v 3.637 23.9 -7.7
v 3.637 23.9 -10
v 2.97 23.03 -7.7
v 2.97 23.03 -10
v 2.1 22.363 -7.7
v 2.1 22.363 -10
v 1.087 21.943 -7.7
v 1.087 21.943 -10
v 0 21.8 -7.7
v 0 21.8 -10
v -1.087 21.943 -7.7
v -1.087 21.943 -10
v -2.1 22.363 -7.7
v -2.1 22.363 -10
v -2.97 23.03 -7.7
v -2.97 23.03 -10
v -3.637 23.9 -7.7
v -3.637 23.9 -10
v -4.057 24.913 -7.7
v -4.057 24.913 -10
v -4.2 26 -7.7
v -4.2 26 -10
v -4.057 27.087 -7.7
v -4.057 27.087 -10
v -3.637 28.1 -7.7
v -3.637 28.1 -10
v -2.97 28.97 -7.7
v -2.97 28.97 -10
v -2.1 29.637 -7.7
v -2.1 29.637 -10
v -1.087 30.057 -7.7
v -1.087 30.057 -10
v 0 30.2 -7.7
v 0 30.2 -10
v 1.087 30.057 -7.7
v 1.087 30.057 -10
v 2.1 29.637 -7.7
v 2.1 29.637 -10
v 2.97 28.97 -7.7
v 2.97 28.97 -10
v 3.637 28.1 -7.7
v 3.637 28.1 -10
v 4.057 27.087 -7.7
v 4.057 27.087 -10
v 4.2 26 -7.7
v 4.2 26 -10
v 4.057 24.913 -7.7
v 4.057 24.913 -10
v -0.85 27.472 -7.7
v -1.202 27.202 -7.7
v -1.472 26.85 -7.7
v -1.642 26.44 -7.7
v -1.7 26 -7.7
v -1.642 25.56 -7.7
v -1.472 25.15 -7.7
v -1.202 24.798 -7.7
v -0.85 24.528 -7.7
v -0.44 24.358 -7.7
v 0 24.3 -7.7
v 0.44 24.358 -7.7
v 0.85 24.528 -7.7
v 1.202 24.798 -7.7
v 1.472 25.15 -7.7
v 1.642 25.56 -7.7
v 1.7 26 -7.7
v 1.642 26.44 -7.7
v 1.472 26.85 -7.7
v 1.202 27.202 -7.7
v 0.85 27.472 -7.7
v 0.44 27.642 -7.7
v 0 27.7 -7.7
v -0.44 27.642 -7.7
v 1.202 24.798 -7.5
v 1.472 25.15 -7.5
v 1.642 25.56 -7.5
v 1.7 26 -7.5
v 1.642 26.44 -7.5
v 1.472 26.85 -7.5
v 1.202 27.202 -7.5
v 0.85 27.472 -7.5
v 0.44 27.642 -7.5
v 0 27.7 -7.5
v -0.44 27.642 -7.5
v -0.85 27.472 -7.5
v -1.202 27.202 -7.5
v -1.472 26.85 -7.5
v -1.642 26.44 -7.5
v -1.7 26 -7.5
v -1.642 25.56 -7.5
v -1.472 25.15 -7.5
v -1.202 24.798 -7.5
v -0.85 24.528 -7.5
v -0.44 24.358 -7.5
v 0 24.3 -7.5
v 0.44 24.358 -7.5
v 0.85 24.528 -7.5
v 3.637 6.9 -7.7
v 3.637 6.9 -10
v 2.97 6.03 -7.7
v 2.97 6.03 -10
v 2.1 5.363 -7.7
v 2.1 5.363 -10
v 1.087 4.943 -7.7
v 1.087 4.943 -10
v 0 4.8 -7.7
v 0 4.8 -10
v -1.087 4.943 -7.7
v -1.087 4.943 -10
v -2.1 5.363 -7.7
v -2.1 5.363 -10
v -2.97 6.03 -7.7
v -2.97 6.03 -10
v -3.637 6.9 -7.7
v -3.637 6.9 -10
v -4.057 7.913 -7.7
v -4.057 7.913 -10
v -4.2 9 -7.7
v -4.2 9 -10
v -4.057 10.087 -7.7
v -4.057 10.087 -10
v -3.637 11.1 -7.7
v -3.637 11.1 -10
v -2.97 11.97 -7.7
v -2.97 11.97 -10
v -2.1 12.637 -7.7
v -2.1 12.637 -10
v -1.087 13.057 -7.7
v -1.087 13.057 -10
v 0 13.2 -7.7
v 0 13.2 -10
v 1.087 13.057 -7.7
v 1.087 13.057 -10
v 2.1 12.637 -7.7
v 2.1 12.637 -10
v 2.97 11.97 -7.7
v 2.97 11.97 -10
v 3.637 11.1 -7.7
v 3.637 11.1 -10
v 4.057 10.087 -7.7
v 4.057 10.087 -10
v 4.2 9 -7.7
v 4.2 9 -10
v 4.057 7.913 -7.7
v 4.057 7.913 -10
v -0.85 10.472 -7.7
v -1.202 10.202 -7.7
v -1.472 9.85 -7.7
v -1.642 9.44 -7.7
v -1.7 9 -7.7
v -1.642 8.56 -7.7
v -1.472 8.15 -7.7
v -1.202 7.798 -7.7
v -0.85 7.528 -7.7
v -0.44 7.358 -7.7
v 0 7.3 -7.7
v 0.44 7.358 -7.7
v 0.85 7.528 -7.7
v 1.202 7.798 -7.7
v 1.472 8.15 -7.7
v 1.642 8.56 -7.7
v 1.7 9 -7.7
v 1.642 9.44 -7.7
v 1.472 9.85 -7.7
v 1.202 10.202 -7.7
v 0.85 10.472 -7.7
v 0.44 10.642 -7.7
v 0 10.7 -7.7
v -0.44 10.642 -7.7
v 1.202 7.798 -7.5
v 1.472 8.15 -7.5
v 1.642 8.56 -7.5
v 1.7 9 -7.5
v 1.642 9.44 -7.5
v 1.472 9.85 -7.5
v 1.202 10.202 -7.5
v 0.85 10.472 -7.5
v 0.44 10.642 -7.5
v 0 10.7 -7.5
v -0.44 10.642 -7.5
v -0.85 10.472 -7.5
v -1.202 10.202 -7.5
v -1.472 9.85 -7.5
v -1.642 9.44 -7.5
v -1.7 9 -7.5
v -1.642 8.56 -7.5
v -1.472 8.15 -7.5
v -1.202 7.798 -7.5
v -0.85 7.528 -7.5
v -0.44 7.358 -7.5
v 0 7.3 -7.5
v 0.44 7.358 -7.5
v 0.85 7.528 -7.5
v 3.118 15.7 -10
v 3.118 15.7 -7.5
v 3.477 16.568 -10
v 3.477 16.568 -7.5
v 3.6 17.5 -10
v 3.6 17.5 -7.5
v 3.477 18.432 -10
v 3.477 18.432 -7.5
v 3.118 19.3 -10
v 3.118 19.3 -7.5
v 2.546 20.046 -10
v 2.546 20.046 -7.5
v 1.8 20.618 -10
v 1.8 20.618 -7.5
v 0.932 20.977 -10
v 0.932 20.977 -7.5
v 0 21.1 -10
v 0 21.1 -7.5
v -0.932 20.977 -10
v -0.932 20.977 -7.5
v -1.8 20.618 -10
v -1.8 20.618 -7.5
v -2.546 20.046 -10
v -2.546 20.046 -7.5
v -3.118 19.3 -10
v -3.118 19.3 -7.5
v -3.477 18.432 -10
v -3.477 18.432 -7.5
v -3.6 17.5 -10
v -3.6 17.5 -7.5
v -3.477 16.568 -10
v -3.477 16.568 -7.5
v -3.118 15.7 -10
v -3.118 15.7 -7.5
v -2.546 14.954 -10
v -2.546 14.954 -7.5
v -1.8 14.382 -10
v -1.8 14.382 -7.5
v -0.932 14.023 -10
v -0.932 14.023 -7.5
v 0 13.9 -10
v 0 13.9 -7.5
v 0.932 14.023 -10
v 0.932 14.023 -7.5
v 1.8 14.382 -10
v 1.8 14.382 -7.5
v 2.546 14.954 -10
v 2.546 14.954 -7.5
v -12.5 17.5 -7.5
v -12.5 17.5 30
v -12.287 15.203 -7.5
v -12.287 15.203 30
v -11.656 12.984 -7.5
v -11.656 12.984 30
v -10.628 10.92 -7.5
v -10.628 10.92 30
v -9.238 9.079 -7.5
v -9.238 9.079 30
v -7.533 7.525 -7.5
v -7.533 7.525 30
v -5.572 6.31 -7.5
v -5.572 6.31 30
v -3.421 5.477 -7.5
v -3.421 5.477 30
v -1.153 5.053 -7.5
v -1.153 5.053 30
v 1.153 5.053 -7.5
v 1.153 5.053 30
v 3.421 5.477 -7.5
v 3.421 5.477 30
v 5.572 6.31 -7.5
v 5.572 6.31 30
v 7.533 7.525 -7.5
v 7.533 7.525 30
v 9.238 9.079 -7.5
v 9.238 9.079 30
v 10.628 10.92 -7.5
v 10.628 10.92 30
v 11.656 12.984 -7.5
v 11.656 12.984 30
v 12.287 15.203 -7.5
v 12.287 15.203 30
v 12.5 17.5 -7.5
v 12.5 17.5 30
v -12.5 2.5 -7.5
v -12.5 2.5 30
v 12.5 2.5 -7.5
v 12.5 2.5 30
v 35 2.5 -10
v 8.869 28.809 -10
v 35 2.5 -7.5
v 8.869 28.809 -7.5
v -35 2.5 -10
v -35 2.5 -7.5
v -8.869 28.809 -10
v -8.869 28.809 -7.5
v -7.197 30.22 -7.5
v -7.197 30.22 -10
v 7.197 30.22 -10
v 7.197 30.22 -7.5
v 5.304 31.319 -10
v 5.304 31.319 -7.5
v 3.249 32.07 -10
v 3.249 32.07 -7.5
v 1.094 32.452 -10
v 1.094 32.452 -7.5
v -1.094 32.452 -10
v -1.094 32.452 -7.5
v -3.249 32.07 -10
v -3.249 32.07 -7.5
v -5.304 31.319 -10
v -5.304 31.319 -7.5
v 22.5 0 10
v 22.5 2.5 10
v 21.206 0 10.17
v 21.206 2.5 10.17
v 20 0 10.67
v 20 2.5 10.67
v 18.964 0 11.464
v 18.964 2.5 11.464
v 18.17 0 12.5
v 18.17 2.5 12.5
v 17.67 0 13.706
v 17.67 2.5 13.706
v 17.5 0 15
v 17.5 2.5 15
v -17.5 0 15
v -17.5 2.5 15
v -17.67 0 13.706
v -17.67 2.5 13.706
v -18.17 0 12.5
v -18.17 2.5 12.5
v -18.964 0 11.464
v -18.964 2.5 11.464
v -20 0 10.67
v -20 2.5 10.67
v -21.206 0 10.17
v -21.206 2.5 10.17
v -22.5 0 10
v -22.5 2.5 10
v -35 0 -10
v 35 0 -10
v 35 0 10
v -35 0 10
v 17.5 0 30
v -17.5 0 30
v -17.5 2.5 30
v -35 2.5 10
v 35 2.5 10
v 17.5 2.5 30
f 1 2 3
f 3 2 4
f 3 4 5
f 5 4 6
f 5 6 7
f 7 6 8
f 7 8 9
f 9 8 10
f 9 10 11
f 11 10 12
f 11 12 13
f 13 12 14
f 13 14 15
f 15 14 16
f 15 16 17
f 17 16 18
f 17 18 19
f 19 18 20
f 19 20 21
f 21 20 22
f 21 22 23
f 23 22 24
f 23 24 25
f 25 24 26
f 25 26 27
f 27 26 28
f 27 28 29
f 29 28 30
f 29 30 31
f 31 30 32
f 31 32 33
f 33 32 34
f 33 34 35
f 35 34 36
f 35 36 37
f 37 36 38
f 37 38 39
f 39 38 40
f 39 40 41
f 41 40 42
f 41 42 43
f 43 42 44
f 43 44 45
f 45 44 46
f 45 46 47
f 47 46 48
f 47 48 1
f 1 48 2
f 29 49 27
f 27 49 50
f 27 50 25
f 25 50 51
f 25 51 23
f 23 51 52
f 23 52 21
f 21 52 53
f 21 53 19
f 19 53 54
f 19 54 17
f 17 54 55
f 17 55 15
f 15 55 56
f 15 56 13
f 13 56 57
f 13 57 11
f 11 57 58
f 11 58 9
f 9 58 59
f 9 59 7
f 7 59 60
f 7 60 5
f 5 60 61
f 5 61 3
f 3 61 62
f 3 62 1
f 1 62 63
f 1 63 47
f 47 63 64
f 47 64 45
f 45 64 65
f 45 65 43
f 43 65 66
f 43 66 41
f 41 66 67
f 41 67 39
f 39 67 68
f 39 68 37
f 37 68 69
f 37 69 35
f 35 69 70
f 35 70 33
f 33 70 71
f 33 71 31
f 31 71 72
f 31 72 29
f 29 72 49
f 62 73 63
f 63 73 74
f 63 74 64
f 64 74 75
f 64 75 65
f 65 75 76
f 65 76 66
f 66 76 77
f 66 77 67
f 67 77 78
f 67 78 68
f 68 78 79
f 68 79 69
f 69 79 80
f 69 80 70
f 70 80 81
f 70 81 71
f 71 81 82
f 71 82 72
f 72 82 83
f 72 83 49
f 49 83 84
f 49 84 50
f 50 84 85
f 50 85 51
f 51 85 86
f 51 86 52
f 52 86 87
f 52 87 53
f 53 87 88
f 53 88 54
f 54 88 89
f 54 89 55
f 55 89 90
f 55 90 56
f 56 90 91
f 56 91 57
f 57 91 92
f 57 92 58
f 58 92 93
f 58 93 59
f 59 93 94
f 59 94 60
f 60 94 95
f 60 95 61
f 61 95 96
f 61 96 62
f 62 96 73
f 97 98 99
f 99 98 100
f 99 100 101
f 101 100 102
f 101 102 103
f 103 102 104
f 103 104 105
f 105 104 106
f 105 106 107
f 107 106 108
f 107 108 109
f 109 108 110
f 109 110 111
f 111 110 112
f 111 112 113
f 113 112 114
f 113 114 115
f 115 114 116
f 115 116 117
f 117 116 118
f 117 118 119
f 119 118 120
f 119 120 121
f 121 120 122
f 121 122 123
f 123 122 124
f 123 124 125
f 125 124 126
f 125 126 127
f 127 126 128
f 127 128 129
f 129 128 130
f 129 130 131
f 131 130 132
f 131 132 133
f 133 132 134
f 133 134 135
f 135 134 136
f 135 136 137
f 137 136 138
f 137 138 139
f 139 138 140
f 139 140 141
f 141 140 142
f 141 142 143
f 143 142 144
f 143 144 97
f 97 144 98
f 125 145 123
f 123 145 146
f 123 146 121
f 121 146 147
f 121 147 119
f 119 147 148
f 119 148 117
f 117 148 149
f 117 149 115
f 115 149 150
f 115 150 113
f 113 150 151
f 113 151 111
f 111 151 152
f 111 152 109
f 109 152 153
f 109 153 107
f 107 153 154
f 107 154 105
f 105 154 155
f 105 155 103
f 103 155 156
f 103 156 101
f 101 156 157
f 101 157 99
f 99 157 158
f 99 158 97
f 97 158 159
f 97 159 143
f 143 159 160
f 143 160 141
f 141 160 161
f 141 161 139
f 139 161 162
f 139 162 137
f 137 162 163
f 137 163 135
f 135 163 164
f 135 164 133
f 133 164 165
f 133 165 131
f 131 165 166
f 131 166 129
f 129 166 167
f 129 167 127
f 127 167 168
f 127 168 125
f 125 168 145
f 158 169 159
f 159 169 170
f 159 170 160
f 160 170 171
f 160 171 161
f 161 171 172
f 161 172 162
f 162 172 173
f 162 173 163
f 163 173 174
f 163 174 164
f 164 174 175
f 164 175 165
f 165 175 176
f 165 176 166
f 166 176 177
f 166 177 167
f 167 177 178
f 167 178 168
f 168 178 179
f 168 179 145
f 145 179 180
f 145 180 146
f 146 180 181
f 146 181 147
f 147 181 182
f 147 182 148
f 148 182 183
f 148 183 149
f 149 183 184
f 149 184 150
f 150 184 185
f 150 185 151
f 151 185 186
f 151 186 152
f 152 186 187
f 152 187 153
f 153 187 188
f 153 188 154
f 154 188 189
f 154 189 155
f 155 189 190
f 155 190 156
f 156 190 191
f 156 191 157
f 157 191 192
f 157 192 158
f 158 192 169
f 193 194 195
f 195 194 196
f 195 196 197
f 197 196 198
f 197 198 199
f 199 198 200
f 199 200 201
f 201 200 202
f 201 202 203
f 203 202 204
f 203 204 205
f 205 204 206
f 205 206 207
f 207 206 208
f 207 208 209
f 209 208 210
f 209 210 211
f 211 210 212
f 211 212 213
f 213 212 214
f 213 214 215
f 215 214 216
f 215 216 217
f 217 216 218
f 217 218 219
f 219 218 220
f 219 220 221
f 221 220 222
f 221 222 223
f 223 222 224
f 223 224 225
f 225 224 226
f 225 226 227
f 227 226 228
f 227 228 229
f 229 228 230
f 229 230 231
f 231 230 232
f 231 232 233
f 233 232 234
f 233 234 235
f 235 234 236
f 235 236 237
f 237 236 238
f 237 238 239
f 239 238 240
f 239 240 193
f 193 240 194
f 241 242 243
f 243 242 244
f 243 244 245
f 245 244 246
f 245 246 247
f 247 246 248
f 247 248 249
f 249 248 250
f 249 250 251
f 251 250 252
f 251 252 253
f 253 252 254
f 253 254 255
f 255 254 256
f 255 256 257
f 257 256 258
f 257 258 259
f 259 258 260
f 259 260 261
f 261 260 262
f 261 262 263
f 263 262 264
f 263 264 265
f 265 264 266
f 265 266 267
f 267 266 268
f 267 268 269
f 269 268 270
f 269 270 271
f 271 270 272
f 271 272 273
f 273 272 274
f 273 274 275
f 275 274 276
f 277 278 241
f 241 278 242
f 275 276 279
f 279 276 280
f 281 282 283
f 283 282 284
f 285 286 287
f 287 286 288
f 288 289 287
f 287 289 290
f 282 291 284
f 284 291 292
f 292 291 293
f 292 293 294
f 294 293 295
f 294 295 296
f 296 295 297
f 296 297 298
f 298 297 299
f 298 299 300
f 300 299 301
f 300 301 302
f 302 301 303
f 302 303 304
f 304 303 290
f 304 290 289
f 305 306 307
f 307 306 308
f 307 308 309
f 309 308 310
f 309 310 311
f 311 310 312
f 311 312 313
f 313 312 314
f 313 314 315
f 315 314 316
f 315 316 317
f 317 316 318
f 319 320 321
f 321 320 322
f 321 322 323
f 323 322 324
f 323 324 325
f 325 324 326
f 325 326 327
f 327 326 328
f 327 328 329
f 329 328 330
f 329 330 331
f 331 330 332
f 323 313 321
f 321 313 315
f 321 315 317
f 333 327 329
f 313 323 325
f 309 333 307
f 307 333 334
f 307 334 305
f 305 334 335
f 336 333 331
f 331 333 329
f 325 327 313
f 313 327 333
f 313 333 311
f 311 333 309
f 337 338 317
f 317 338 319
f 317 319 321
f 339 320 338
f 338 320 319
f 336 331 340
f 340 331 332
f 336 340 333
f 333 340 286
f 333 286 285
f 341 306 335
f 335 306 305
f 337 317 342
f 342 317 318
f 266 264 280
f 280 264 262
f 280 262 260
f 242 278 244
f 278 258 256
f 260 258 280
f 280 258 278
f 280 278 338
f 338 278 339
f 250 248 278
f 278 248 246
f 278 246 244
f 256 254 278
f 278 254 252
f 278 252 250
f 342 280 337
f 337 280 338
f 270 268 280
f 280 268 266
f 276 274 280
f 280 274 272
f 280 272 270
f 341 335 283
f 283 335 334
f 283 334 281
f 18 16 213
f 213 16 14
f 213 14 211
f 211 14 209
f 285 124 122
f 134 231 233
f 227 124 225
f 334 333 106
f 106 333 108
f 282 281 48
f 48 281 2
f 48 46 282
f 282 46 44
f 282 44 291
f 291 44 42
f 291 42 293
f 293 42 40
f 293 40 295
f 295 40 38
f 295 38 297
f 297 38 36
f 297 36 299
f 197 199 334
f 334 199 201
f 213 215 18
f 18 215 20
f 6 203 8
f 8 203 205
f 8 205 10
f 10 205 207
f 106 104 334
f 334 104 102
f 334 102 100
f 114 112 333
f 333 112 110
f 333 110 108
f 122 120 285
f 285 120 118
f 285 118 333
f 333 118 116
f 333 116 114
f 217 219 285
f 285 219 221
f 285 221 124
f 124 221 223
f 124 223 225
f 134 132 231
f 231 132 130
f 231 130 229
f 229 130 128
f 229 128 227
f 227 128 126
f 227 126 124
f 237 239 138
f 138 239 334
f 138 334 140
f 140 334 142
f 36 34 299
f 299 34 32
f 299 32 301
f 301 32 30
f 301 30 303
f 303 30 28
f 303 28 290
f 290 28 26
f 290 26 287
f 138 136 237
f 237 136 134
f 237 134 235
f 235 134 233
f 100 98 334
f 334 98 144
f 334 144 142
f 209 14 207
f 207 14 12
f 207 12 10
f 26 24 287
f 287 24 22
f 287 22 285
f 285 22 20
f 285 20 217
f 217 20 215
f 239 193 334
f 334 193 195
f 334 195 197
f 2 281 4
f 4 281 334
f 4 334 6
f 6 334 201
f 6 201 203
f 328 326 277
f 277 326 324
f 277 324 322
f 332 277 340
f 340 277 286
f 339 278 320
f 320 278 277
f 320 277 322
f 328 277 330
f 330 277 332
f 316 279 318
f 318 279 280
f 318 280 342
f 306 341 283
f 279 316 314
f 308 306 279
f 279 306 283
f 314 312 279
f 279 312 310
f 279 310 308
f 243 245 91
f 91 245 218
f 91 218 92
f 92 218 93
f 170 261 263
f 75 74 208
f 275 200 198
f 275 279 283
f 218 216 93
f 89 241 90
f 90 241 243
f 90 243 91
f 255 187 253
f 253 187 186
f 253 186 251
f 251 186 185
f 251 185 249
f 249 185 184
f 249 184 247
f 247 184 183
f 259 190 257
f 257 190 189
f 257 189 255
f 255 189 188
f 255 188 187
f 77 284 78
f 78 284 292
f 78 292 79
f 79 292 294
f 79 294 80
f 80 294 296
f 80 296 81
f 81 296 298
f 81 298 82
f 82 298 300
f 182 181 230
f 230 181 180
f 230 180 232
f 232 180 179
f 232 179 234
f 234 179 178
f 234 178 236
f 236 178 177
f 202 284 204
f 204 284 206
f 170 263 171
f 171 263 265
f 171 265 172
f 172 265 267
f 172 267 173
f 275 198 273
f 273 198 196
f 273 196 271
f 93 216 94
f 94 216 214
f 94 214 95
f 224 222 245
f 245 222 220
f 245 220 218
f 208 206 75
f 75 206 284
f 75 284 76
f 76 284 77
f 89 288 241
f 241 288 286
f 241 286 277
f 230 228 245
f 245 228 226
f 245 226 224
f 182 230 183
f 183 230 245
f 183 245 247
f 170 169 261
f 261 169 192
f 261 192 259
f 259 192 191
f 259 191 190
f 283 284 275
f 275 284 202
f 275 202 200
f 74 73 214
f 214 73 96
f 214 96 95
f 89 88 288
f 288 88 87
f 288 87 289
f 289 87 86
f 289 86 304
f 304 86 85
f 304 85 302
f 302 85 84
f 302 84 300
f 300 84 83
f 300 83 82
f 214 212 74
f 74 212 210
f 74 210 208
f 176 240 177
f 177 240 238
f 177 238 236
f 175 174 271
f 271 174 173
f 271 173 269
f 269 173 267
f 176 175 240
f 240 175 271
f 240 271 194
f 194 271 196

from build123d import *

# Parameters (mm, degrees)
BOSS_EXTRUDE1_DEPTH                              = 2.5
FILLET1_R                                        = 5
SKETCH3_W                                        = 70
SKETCH3_H                                        = 2.5
BOSS_EXTRUDE2_DEPTH                              = 30
CUT_EXTRUDE1_REACH                               = 62.725
BOSS_EXTRUDE3_DEPTH                              = 37.5
CUT_EXTRUDE3_REACH                               = 62.725
SKETCH10_R                                       = 3.6
CBORE_FOR_M3_HEX_HEAD_MACHINE_SCREW1_D           = 3.4
CBORE_FOR_M3_HEX_HEAD_MACHINE_SCREW1_CBORE_D     = 8.4
CBORE_FOR_M3_HEX_HEAD_MACHINE_SCREW1_CBORE_DEPTH = 2.3


with BuildPart() as part:
    # Sketch2 → Boss-Extrude1 (new body)
    with BuildSketch(Plane(origin=(0, 0, 0), x_dir=(1, 0, 0), z_dir=(0, 1, 0))):
        Polygon((-17.5, -30), (17.5, -30), (17.5, -10), (35, -10), (35, 10), (-35, 10), (-35, -10), (-17.5, -10), align=None)
    extrude(amount=BOSS_EXTRUDE1_DEPTH)

    # Fillet1
    fillet1_edges = [part.edges().sort_by_distance(p)[0] for p in [
        (-17.5, 1.25, 10),
        (17.5, 1.25, 10),
    ]]
    fillet(fillet1_edges, radius=FILLET1_R)

    # Sketch3 → Boss-Extrude2 (add)
    with BuildSketch(Plane(origin=(0, 2.5, 0), x_dir=(1, 0, 0), z_dir=(0, 1, 0))):
        with Locations((0, 8.75)):
            Rectangle(SKETCH3_W, SKETCH3_H)
    extrude(amount=BOSS_EXTRUDE2_DEPTH)

    # Sketch4 → Cut-Extrude1 (cut, up to next)
    with BuildSketch(Plane.XY.offset(-7.5), mode=Mode.PRIVATE) as cut_extrude1_sk1:
        with BuildLine():
            Line((-35, 32.5), (-35, 2.5))
            Line((-35, 2.5), (-8.868713205, 28.808854982))
            ThreePointArc((-8.868713205, 28.808854982), (-4.803088197, 31.54037884), (3.1e-08, 32.5))
            Line((3.1e-08, 32.5), (-35, 32.5))
        make_face()
    cut_extrude1_tool1 = extrude(cut_extrude1_sk1.sketch, amount=-CUT_EXTRUDE1_REACH, mode=Mode.PRIVATE) & part.part
    # Sketch4 → Cut-Extrude1 (cut, up to next)
    with BuildSketch(Plane.XY.offset(-7.5), mode=Mode.PRIVATE) as cut_extrude1_sk2:
        with BuildLine():
            Line((35, 32.5), (3.1e-08, 32.5))
            ThreePointArc((3.1e-08, 32.5), (4.803088226, 31.540378828), (8.868713205, 28.808854982))
            Line((8.868713205, 28.808854982), (35, 2.5))
            Line((35, 2.5), (35, 32.5))
        make_face()
    cut_extrude1_tool2 = extrude(cut_extrude1_sk2.sketch, amount=-CUT_EXTRUDE1_REACH, mode=Mode.PRIVATE) & part.part
    add(cut_extrude1_tool1.solids().sort_by_distance((-24.914818, 22.569917, -7.5))[0], mode=Mode.SUBTRACT)
    add(cut_extrude1_tool2.solids().sort_by_distance((24.914818, 22.569917, -7.5))[0], mode=Mode.SUBTRACT)

    # Sketch7 → Boss-Extrude3 (add)
    with BuildSketch(Plane.XY.offset(-7.5)):
        with BuildLine():
            Line((12.5, 17.5), (12.5, 2.5))
            Line((12.5, 2.5), (-12.5, 2.5))
            Line((-12.5, 2.5), (-12.5, 17.5))
            ThreePointArc((-12.5, 17.5), (0, 5), (12.5, 17.5))
        make_face()
    extrude(amount=BOSS_EXTRUDE3_DEPTH)

    # Sketch10 → Cut-Extrude3 (cut, up to next)
    with BuildSketch(Plane.XY.offset(-7.5), mode=Mode.PRIVATE) as cut_extrude3_sk1:
        with Locations((0, 17.5)):
            Circle(SKETCH10_R)
    cut_extrude3_tool1 = extrude(cut_extrude3_sk1.sketch, amount=-CUT_EXTRUDE3_REACH, mode=Mode.PRIVATE) & part.part
    add(cut_extrude3_tool1.solids().sort_by_distance((0, 17.5, -7.5))[0], mode=Mode.SUBTRACT)

    # CBORE for M3 Hex Head Machine Screw1 (through all)
    with Locations(Plane(origin=(0, 0, -10), x_dir=(-1, 0, 0), z_dir=(0, 0, -1))):
        with Locations((0, 26), (0, 9)):
            CounterBoreHole(CBORE_FOR_M3_HEX_HEAD_MACHINE_SCREW1_D / 2, CBORE_FOR_M3_HEX_HEAD_MACHINE_SCREW1_CBORE_D / 2, CBORE_FOR_M3_HEX_HEAD_MACHINE_SCREW1_CBORE_DEPTH)


solid = part.part
